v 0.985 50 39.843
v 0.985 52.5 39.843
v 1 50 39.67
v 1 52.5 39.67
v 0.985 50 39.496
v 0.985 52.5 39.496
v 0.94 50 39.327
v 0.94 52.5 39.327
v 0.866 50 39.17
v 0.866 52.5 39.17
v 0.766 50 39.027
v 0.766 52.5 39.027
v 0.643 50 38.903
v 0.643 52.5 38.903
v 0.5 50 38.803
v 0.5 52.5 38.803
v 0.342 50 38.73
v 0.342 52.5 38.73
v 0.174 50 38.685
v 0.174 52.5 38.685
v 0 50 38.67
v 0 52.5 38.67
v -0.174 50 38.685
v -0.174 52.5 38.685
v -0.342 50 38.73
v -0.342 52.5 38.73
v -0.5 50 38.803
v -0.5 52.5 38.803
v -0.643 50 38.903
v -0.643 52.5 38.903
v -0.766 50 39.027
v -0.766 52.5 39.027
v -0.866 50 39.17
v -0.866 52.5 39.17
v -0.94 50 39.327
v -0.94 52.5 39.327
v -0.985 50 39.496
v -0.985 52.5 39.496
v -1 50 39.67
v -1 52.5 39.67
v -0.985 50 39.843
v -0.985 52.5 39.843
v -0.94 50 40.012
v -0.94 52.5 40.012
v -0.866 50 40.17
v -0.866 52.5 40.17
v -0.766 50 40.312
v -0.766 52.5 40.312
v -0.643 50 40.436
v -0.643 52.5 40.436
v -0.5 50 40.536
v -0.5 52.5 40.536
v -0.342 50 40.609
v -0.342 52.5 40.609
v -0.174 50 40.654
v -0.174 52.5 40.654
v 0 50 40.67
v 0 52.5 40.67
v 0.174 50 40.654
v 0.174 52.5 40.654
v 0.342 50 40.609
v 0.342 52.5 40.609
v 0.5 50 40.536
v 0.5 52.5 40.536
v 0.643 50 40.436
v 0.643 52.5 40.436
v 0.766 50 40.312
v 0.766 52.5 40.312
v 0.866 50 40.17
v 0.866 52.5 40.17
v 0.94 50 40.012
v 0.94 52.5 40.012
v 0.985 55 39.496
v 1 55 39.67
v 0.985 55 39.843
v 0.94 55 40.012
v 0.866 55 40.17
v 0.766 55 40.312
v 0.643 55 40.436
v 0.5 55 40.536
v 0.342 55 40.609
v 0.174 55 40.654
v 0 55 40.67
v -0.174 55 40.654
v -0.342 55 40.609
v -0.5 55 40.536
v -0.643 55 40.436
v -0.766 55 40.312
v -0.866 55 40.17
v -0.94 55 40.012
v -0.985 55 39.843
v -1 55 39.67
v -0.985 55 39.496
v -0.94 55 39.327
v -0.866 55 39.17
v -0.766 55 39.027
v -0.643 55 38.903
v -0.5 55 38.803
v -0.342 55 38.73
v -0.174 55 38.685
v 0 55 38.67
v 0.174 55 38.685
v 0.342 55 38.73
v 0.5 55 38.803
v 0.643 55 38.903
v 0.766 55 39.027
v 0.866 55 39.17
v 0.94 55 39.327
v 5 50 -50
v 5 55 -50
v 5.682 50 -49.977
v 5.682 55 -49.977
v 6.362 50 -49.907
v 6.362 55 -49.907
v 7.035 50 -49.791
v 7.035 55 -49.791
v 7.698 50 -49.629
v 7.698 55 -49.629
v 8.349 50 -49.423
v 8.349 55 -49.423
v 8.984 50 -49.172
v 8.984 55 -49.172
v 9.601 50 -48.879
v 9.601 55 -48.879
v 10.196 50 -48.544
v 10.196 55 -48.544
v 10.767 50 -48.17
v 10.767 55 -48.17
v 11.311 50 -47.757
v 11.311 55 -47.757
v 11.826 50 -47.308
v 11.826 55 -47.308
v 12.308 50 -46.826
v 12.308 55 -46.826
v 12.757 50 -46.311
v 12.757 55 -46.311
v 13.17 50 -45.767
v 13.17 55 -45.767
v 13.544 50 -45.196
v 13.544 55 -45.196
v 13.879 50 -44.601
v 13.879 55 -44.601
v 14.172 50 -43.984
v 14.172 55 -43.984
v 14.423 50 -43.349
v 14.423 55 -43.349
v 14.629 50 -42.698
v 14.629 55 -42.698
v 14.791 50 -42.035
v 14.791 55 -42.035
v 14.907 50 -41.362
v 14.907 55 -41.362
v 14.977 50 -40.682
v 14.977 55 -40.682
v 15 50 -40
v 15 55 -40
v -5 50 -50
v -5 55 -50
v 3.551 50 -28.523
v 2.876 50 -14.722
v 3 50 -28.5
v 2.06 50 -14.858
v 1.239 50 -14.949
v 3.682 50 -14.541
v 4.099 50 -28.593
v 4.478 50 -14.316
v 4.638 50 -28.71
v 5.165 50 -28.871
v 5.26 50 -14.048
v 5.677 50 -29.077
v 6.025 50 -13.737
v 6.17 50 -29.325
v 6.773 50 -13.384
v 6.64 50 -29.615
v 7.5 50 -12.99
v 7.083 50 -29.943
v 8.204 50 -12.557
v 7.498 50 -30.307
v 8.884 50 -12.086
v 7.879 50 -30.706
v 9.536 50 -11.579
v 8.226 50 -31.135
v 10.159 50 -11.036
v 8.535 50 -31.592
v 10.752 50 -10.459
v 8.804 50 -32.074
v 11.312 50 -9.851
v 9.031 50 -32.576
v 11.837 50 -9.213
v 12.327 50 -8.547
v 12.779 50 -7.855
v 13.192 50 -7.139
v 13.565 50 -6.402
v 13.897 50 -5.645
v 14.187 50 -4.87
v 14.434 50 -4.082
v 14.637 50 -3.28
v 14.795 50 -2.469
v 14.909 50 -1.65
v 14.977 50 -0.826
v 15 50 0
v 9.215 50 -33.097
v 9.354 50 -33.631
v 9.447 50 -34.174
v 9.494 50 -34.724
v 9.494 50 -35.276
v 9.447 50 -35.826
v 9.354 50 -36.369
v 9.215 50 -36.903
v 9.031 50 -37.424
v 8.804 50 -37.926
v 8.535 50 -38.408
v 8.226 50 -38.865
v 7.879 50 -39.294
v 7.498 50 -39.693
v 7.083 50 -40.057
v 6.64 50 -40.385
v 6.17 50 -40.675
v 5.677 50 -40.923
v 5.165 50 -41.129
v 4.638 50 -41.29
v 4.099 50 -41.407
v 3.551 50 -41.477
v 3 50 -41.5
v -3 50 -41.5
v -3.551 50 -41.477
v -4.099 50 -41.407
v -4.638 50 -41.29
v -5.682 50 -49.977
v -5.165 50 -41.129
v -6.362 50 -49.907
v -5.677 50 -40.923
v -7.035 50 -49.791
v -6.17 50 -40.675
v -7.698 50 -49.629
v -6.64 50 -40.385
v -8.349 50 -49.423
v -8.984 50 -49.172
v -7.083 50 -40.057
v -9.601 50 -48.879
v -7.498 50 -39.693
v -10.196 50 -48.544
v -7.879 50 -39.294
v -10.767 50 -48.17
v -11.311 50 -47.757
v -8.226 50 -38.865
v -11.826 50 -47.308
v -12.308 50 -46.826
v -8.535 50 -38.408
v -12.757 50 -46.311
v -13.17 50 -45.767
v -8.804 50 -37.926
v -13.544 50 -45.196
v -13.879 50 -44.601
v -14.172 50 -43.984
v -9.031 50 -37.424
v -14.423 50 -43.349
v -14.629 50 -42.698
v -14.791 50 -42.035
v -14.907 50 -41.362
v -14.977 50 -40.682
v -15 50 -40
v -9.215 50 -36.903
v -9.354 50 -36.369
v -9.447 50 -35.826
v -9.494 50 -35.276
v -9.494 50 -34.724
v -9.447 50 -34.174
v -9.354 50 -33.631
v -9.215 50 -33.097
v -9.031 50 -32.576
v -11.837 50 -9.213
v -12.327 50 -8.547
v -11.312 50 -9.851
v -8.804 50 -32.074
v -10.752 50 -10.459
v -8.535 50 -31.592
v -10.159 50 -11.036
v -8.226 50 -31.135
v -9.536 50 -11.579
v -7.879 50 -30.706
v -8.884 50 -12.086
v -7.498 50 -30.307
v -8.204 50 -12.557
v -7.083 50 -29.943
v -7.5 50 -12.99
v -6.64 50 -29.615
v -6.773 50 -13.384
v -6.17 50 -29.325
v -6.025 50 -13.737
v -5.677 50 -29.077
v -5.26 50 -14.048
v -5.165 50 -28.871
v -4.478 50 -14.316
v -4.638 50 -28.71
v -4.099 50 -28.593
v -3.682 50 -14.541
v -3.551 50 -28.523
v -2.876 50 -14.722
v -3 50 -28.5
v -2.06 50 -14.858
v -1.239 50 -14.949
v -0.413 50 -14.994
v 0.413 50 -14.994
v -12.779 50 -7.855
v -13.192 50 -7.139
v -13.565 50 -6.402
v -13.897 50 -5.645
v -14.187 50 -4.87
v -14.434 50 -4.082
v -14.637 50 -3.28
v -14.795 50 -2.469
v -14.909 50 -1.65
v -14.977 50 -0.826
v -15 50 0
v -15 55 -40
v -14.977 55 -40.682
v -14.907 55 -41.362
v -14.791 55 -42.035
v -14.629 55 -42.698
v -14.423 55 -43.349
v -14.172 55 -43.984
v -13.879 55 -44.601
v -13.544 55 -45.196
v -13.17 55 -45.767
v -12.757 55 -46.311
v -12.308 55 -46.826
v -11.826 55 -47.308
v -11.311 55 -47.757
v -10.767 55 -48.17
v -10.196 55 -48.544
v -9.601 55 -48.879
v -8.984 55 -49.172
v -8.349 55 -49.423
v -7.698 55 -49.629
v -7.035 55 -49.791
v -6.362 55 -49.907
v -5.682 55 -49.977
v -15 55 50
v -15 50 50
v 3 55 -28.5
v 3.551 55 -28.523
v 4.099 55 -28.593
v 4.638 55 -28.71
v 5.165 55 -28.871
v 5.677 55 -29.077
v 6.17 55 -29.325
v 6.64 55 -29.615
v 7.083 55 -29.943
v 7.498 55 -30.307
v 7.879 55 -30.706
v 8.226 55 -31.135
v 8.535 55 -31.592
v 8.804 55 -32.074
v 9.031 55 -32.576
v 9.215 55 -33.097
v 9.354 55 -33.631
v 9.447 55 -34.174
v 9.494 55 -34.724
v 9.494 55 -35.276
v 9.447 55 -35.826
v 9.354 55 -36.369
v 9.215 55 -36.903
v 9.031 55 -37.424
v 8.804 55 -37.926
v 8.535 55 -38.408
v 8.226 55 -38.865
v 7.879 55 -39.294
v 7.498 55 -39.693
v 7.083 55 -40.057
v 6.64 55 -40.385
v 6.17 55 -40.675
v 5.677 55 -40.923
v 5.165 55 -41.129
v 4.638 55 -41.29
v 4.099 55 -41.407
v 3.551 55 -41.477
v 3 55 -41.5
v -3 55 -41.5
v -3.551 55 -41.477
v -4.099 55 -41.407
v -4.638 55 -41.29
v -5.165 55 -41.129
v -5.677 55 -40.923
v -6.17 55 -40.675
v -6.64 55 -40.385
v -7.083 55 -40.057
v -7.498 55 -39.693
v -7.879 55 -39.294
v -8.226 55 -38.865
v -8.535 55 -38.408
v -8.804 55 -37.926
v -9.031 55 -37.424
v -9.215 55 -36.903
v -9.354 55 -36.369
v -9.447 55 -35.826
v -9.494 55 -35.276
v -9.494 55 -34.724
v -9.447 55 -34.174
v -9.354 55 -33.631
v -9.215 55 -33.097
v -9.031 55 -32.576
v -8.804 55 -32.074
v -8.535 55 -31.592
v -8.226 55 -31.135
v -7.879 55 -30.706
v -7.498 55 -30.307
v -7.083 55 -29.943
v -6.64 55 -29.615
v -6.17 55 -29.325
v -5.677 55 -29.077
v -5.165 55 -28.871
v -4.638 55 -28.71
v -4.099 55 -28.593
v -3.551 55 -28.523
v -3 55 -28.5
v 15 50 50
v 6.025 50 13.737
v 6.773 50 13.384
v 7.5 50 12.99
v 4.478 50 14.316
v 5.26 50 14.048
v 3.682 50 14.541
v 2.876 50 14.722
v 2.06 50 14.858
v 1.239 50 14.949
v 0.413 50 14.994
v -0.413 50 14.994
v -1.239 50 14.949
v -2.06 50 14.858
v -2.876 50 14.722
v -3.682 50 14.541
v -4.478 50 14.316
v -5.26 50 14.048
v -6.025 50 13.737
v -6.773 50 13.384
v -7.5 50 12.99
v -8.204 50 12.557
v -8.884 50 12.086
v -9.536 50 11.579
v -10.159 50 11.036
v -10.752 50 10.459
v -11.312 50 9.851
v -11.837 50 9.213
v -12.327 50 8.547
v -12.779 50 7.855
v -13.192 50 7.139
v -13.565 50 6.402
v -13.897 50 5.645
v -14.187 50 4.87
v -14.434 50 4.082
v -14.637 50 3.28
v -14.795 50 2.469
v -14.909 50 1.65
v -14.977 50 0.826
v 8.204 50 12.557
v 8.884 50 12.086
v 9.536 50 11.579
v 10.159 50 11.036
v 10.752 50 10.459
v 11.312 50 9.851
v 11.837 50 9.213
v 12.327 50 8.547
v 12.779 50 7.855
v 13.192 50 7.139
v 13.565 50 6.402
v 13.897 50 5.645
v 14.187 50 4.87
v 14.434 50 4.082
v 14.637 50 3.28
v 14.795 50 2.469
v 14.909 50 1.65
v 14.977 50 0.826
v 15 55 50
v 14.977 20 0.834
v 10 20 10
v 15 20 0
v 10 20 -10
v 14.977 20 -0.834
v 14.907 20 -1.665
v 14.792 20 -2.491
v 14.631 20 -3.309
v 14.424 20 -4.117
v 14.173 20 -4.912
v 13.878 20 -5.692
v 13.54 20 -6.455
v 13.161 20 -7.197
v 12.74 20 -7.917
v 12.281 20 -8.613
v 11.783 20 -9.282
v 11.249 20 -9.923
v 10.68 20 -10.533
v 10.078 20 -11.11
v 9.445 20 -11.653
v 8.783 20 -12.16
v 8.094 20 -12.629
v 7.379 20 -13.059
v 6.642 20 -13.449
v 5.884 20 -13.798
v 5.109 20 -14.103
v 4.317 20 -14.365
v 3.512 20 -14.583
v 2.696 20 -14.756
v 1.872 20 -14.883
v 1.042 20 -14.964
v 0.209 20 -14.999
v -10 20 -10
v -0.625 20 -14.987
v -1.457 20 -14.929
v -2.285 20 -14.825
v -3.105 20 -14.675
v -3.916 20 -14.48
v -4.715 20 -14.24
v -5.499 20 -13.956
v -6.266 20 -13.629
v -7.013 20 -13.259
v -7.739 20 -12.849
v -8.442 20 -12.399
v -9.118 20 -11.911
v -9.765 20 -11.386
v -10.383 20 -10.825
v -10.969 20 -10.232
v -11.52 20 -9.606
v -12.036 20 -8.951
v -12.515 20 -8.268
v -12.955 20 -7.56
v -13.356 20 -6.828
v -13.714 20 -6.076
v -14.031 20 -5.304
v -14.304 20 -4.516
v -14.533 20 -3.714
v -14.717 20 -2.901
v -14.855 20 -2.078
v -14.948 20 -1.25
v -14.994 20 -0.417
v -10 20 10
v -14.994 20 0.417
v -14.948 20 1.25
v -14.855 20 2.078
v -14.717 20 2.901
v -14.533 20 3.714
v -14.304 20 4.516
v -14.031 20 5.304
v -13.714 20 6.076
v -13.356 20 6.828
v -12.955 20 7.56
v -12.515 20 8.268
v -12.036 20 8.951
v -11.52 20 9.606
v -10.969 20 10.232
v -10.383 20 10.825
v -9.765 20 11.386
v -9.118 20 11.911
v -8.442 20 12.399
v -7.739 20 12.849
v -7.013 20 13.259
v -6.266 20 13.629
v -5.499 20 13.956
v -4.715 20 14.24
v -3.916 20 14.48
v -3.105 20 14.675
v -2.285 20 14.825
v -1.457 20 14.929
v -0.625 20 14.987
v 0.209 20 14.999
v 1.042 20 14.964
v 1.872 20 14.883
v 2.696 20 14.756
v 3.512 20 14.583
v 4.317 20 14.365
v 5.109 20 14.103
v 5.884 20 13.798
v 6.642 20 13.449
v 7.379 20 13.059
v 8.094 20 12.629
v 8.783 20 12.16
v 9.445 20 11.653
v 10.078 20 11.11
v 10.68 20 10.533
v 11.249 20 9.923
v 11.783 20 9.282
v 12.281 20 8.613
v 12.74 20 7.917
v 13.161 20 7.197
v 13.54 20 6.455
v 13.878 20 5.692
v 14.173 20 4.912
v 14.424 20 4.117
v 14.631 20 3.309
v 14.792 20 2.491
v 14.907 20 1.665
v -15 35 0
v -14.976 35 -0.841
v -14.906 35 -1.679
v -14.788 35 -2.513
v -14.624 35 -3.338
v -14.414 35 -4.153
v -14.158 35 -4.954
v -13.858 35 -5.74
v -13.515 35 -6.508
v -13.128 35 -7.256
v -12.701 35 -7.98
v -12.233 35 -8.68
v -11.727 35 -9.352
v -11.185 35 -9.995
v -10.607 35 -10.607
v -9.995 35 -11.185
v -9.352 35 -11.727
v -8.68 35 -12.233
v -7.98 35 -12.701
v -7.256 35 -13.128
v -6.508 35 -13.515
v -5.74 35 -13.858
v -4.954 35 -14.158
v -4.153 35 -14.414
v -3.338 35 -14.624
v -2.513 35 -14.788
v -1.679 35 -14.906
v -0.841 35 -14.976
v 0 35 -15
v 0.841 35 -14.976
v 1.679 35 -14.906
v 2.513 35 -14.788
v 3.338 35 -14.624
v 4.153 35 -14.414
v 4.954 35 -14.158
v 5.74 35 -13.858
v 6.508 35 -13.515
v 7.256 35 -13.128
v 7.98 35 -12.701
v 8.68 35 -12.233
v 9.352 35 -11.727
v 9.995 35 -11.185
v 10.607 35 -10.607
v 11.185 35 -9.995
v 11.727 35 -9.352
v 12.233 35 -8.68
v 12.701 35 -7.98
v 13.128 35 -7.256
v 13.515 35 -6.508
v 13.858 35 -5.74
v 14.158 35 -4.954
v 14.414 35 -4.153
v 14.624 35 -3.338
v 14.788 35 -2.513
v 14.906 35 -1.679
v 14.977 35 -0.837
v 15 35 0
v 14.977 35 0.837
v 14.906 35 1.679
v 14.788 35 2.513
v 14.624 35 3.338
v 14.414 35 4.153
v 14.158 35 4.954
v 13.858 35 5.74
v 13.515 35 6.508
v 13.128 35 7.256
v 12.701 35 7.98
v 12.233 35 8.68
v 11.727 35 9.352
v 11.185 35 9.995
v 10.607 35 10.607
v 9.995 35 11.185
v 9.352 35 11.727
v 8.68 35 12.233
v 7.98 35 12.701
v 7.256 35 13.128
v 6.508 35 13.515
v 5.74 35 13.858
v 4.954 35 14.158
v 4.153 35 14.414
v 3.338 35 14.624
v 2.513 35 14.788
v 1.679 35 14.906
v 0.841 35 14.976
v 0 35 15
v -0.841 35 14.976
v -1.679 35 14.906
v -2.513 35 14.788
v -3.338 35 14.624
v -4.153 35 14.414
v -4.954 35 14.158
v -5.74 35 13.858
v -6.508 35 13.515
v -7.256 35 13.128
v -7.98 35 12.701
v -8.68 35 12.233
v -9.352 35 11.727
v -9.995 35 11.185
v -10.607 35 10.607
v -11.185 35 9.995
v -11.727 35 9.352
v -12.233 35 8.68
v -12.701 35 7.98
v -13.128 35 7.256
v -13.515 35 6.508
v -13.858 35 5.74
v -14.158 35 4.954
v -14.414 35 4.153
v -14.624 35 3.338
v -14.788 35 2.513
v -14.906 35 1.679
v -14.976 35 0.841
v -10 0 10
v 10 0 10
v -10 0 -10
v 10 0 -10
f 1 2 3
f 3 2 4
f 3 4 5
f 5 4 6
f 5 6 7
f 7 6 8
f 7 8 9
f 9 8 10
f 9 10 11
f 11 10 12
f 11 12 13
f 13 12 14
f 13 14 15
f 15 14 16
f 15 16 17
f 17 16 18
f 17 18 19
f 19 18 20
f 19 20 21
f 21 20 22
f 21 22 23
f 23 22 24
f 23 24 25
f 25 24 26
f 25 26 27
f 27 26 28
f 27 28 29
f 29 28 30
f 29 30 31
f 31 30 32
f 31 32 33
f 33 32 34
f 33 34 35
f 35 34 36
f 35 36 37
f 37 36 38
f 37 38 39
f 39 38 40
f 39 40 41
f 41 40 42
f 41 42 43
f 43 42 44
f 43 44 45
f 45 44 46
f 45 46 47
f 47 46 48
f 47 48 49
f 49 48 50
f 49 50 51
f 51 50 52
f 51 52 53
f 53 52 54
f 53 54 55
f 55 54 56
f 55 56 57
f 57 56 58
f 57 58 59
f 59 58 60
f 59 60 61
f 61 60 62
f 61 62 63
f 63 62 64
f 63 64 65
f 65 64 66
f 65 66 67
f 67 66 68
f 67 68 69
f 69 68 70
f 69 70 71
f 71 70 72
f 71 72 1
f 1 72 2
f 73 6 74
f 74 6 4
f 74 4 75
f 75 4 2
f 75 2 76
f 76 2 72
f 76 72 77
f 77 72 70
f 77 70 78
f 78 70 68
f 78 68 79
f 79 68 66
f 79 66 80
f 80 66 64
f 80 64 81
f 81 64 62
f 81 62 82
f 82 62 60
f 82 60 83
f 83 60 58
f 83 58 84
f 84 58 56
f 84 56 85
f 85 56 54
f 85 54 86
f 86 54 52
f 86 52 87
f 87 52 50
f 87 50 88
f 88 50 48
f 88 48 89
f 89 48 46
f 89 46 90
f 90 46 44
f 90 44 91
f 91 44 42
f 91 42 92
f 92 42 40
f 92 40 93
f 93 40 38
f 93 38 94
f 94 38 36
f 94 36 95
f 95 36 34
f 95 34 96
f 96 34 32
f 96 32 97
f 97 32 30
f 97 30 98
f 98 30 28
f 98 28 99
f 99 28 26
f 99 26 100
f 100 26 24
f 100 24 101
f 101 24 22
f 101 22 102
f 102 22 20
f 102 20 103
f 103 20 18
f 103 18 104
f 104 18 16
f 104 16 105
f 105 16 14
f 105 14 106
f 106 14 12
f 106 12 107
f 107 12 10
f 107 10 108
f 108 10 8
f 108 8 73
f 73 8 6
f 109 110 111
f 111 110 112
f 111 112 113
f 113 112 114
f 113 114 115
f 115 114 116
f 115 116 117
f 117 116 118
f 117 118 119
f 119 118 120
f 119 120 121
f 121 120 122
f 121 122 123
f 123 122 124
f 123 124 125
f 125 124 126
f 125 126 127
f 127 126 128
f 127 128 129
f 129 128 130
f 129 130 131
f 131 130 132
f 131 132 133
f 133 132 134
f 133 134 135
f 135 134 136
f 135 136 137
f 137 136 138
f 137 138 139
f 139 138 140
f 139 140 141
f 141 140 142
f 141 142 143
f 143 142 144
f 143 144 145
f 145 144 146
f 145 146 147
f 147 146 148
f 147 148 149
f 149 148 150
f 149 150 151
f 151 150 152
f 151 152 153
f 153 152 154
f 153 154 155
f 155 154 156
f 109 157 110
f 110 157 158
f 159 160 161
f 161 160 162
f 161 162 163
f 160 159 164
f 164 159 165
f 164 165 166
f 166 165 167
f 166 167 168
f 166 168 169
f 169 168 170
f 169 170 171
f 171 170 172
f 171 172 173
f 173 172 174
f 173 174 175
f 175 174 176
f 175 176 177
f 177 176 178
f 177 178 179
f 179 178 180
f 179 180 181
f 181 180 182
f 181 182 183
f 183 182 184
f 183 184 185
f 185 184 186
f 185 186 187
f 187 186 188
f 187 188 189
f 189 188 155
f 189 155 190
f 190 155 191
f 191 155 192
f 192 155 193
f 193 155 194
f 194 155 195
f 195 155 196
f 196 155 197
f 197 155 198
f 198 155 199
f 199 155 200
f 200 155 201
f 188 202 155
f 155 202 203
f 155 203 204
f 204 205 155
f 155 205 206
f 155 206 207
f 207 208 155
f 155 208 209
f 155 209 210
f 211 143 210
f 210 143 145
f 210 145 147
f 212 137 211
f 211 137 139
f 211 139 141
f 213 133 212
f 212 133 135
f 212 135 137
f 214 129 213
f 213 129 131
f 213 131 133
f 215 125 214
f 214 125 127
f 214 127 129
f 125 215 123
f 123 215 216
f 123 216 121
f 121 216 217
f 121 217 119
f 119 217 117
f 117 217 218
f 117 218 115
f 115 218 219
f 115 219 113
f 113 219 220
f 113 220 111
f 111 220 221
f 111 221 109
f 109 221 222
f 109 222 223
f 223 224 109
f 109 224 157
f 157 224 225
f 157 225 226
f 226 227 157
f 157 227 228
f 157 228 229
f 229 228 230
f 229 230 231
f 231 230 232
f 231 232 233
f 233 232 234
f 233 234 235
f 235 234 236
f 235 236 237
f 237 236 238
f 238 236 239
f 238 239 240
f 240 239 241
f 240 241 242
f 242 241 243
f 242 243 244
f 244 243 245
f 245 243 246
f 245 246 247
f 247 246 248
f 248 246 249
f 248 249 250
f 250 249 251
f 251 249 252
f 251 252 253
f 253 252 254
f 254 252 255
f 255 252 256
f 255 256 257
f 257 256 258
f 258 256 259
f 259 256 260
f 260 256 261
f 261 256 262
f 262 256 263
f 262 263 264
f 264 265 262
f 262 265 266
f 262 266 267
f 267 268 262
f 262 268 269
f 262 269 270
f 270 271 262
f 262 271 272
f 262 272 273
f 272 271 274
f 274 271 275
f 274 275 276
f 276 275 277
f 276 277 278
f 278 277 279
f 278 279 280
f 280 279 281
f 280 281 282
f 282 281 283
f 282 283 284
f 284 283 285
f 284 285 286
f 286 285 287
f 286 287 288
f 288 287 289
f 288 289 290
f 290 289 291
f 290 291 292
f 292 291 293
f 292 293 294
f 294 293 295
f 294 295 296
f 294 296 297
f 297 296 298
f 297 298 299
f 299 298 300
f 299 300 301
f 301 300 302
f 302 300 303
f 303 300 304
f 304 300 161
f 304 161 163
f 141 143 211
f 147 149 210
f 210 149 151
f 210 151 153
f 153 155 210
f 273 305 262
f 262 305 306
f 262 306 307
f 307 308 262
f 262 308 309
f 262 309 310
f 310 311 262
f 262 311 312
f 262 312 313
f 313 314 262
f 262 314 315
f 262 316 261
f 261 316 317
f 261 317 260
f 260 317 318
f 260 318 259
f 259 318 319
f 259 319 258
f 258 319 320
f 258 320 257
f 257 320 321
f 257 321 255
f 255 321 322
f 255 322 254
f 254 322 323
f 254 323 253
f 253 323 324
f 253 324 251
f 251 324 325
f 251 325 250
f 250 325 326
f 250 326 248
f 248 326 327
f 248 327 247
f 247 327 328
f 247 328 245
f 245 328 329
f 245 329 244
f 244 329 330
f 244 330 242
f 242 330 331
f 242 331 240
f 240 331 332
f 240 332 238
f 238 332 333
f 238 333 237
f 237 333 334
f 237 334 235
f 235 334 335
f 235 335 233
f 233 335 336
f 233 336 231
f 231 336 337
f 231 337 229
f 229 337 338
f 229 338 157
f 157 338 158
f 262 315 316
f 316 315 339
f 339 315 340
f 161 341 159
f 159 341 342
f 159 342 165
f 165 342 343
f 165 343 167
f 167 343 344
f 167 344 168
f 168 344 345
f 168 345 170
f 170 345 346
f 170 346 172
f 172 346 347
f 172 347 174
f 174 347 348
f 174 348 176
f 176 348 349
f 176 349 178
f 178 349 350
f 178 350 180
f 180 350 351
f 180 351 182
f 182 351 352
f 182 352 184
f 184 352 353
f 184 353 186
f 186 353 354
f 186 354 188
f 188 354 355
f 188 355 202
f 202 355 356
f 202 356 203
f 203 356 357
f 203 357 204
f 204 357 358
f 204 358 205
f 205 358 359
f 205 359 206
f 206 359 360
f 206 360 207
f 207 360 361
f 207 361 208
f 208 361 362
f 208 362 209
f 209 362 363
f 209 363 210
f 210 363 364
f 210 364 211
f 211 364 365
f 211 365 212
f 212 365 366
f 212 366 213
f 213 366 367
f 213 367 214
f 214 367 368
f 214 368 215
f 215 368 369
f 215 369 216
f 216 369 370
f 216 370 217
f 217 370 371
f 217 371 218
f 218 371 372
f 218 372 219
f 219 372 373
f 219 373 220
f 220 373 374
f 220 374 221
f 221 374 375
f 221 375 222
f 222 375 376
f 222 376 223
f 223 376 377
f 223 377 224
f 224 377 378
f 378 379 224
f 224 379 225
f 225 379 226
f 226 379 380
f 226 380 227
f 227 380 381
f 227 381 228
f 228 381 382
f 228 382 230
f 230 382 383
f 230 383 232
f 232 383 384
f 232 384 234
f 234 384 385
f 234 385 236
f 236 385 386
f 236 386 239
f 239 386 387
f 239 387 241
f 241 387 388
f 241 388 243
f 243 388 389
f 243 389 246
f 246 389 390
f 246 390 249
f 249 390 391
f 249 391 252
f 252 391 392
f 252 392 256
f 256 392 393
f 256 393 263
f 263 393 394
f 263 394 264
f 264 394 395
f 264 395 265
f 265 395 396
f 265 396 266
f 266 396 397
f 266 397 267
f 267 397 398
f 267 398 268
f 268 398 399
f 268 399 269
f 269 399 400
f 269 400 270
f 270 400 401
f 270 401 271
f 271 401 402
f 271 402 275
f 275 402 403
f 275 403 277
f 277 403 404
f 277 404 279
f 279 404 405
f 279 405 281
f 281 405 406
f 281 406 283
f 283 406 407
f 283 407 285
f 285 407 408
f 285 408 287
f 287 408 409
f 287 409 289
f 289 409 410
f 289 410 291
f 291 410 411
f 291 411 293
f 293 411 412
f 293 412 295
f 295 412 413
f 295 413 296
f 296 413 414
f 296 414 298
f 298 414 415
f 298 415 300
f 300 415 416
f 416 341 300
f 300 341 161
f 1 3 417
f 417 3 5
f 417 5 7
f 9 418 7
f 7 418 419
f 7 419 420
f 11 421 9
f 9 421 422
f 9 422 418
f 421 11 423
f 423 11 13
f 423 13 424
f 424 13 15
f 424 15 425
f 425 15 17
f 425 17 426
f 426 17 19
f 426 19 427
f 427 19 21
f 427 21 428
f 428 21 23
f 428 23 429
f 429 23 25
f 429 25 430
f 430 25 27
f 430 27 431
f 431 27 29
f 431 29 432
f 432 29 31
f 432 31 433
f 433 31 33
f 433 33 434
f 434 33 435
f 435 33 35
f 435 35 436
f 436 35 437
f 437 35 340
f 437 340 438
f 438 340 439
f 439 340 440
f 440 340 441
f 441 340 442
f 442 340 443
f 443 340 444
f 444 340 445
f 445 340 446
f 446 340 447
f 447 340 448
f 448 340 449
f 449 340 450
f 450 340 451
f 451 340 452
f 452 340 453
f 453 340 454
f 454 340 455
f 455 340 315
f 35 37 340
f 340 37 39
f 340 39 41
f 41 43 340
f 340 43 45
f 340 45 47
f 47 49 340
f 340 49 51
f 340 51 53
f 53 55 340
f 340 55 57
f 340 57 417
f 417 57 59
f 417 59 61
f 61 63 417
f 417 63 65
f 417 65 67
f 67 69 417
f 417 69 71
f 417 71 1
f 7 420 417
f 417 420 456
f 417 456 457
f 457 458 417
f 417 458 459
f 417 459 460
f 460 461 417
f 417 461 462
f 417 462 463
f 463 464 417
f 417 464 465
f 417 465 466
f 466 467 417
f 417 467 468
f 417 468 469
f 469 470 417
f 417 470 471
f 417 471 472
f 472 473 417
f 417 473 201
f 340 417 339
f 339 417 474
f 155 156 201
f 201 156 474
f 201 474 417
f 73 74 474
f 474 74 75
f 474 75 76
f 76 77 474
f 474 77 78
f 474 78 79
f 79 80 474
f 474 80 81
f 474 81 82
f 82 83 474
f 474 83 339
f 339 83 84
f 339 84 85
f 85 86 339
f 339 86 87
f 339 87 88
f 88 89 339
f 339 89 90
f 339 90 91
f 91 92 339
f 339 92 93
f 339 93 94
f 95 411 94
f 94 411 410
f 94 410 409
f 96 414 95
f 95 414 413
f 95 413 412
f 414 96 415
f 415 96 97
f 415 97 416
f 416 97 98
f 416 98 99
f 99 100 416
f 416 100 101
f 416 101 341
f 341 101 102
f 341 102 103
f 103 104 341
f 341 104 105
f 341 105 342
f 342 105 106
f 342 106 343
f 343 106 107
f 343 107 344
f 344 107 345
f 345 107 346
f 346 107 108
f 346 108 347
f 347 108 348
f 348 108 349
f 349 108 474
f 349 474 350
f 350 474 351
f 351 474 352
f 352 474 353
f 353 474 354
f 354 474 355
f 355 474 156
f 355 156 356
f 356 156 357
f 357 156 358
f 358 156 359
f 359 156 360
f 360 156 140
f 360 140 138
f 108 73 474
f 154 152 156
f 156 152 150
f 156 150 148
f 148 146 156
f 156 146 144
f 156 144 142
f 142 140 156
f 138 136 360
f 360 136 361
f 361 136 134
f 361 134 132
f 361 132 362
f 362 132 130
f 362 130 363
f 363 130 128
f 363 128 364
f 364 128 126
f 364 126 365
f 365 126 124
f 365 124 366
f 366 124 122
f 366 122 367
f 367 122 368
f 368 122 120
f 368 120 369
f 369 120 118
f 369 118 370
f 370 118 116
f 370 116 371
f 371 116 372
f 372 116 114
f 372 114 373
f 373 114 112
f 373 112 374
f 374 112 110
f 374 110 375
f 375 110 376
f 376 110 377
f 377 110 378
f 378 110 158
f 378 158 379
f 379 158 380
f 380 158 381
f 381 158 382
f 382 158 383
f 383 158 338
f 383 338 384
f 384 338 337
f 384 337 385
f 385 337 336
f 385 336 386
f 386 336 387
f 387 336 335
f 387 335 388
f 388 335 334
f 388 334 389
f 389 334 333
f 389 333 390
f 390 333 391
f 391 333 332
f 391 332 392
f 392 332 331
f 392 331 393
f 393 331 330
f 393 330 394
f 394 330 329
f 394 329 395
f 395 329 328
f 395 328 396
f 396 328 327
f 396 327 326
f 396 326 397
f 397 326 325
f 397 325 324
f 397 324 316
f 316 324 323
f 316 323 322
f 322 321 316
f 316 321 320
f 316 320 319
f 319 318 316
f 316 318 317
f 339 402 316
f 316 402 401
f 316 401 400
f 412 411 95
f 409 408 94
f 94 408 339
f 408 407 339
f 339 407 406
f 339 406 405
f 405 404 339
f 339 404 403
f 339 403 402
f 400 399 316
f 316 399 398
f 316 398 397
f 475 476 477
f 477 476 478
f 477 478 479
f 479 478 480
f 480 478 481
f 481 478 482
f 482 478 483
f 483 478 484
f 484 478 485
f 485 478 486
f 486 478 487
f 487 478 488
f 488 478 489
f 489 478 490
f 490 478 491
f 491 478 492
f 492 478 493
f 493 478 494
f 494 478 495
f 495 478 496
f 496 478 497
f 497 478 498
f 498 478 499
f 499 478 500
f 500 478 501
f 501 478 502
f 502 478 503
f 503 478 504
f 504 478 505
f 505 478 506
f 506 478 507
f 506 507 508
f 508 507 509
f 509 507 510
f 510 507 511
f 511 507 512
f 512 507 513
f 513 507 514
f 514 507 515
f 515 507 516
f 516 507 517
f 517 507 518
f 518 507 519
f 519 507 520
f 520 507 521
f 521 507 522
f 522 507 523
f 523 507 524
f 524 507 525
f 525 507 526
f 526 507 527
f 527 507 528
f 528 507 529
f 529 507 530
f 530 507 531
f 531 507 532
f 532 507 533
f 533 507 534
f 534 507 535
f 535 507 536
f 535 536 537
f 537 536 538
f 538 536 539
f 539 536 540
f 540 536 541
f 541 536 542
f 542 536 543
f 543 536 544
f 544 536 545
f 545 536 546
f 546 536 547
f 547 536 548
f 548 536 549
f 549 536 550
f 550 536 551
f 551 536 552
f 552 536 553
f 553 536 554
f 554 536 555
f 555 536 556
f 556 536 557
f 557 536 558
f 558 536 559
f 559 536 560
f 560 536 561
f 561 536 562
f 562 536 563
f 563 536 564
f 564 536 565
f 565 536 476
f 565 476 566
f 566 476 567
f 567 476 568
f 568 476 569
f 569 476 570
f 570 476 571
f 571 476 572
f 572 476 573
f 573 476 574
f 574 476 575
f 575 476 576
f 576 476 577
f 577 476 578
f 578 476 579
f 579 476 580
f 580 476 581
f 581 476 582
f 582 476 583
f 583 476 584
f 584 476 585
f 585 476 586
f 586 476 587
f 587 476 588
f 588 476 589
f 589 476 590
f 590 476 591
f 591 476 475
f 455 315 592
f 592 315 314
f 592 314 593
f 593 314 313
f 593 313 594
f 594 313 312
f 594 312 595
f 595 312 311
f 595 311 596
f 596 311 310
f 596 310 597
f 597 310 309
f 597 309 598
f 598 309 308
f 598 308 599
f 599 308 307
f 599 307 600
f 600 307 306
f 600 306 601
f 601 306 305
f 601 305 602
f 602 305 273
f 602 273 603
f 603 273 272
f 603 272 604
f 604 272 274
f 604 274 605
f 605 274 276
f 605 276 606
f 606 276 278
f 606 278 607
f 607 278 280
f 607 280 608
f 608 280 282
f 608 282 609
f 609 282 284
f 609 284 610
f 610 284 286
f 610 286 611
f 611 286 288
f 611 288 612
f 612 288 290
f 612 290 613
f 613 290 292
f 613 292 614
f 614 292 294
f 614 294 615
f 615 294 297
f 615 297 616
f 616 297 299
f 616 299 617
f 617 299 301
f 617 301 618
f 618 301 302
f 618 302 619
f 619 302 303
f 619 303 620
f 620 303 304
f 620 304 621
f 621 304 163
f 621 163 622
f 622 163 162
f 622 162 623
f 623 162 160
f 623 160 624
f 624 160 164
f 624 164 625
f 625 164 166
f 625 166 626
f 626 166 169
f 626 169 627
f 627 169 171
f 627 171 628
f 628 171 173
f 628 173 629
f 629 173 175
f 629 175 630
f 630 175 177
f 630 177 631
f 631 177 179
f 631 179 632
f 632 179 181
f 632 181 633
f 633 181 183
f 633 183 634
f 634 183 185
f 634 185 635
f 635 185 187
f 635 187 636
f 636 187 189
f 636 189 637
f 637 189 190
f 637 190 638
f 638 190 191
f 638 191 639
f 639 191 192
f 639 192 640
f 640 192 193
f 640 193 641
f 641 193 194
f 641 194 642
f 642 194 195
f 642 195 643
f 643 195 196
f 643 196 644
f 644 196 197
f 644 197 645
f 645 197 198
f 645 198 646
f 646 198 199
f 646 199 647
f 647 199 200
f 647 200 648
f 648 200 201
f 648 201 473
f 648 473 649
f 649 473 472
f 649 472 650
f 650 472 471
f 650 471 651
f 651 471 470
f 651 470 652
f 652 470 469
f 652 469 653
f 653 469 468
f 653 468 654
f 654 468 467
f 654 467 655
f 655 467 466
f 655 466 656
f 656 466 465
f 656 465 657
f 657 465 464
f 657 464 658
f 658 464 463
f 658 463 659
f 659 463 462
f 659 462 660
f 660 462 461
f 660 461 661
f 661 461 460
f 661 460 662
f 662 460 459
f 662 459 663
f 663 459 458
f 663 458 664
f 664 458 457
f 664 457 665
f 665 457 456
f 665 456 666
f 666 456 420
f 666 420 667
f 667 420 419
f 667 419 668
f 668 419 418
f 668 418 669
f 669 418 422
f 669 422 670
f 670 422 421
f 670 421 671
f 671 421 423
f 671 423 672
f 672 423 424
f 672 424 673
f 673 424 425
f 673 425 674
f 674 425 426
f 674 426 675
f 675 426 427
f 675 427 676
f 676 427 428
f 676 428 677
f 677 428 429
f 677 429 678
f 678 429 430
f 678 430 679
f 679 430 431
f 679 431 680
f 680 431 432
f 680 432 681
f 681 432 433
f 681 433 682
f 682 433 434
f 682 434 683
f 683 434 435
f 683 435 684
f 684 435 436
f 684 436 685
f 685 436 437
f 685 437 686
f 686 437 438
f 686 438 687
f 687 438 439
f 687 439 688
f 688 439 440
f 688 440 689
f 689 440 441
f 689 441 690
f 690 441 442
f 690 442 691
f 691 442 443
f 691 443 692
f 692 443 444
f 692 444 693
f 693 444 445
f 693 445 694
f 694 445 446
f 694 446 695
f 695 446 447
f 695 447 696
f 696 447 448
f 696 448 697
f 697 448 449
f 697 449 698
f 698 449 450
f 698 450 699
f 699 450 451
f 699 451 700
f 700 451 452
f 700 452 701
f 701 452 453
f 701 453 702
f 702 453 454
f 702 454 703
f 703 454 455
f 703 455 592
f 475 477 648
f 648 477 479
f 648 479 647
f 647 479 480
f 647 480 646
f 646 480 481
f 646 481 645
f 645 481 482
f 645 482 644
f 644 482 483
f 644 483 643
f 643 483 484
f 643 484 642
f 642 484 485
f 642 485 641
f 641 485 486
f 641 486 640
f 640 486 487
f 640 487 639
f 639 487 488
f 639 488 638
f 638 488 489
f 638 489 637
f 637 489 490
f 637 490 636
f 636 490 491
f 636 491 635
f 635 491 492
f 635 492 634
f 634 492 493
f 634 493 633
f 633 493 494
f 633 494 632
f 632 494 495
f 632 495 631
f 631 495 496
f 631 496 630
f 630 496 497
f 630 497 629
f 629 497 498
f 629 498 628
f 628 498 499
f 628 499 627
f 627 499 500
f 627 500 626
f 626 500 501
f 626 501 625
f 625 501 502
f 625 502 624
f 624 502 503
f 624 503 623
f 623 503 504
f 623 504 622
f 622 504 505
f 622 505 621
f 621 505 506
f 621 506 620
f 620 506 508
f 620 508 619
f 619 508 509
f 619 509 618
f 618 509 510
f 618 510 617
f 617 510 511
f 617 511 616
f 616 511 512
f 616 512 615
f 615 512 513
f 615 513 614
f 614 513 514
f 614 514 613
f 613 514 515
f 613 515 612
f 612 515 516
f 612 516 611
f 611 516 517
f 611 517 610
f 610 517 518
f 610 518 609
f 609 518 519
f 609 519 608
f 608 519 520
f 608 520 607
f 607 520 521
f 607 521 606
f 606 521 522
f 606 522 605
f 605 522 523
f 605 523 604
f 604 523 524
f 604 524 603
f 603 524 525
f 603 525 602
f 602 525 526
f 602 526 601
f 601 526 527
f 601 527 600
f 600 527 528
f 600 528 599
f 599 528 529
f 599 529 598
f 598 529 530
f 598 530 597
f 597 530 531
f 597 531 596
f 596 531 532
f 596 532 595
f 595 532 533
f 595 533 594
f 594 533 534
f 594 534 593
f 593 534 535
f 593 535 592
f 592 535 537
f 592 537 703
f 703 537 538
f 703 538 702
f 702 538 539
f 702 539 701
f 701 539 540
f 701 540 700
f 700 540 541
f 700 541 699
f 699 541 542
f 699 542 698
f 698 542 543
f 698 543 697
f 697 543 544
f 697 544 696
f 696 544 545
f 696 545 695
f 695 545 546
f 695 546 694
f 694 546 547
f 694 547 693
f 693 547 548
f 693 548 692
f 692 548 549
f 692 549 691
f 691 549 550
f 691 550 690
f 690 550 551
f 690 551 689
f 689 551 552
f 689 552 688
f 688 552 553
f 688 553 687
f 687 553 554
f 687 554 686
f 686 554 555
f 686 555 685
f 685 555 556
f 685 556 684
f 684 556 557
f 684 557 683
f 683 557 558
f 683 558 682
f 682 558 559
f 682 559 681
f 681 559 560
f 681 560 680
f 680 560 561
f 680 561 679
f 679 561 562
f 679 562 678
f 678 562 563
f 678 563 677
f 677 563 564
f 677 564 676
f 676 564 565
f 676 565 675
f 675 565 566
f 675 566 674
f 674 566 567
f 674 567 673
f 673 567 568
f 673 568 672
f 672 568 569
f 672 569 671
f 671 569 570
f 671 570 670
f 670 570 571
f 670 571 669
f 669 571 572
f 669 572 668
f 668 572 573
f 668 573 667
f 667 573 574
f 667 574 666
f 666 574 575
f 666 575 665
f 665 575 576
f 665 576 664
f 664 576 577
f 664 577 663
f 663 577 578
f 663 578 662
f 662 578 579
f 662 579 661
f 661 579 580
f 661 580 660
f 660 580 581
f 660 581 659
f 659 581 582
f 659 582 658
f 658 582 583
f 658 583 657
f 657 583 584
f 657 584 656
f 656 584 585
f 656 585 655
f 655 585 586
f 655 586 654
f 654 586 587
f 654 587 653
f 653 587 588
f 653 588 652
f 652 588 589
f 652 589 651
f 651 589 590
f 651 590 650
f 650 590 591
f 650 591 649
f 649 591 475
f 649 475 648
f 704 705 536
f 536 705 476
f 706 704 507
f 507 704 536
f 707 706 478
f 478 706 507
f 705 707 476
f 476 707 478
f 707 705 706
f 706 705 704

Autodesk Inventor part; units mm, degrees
ref_plane "YZ Plane" through (0, 0, 0) normal (1, 0, 0) x (0, 1, 0)
ref_plane "XZ Plane" through (0, 0, 0) normal (0, 1, 0) x (-1, 0, 0)
ref_plane "XY Plane" through (0, 0, 0) normal (0, 0, 1) x (1, 0, 0)
sketch "Sketch1" plane through (0, 0, 0) normal (0, 1, 0) x (-1, 0, 0)
  line L0 (10, 10) -> (-10, 10)
  line L1 (-10, 10) -> (-10, -10)
  line L2 (-10, -10) -> (10, -10)
  line L3 (10, -10) -> (10, 10)
  line L4 (10, 10) -> (-10, -10) construction
  line L5 (-10, 10) -> (10, -10) construction
  point P0 (0, 0)
  dimension "d0" = 20
  dimension "d1" = 20
extrude "Extrusion1" add sketch "Sketch1" along normal blind 20
sketch "Sketch2" plane through (0, 20, 0) normal (0, 1, 0) x (1, 0, 0)
  circle A0 centre (0, 0) radius 15
  dimension "d4" = 30
extrude "Extrusion2" add sketch "Sketch2" along normal blind 30
sketch "Sketch3" plane through (0, 50, 0) normal (0, 1, 0) x (1, 0, 0)
  line L0 (-15, -50) -> (15, -50)
  line L1 (15, -50) -> (15, 50)
  line L2 (15, 50) -> (-15, 50)
  line L3 (-15, 50) -> (-15, -50)
  line L4 (-15, -50) -> (15, 50) construction
  line L5 (15, -50) -> (-15, 50) construction
  point P0 (0, 0)
  dimension "d7" = 30
  dimension "d8" = 100
extrude "Extrusion3" add sketch "Sketch3" along normal blind 5
sketch "Sketch4" plane through (0, 55, 0) normal (0, 1, 0) x (1, 0, 0)
  arc A0 (-3, 41.5) -> (-3, 28.5) centre (-3, 35) ccw
  arc A1 (3, 28.5) -> (3, 41.5) centre (3, 35) ccw
  line L0 (-3, 28.5) -> (3, 28.5)
  line L1 (-3, 41.5) -> (3, 41.5)
  point P0 (0, 0)
  dimension "d11" = 13
  dimension "d12" = 13
  dimension "d13" = 3
  dimension "d14" = 3
  dimension "d15" = 35
extrude "Extrusion4" cut sketch "Sketch4" against normal blind 5
fillet "Fillet1" radius 10 2 edges at (-15, 52.5, -50) (15, 52.5, -50)
sketch "Sketch5" plane through (0, 55, 0) normal (0, 1, 0) x (1, 0, 0)
  circle A0 centre (0, -39.6695) radius 1
  point P0 (0, 0)
  dimension "d19" = 2
extrude "Extrusion5" cut sketch "Sketch5" against normal blind 5
properties part number "herramienta2"
